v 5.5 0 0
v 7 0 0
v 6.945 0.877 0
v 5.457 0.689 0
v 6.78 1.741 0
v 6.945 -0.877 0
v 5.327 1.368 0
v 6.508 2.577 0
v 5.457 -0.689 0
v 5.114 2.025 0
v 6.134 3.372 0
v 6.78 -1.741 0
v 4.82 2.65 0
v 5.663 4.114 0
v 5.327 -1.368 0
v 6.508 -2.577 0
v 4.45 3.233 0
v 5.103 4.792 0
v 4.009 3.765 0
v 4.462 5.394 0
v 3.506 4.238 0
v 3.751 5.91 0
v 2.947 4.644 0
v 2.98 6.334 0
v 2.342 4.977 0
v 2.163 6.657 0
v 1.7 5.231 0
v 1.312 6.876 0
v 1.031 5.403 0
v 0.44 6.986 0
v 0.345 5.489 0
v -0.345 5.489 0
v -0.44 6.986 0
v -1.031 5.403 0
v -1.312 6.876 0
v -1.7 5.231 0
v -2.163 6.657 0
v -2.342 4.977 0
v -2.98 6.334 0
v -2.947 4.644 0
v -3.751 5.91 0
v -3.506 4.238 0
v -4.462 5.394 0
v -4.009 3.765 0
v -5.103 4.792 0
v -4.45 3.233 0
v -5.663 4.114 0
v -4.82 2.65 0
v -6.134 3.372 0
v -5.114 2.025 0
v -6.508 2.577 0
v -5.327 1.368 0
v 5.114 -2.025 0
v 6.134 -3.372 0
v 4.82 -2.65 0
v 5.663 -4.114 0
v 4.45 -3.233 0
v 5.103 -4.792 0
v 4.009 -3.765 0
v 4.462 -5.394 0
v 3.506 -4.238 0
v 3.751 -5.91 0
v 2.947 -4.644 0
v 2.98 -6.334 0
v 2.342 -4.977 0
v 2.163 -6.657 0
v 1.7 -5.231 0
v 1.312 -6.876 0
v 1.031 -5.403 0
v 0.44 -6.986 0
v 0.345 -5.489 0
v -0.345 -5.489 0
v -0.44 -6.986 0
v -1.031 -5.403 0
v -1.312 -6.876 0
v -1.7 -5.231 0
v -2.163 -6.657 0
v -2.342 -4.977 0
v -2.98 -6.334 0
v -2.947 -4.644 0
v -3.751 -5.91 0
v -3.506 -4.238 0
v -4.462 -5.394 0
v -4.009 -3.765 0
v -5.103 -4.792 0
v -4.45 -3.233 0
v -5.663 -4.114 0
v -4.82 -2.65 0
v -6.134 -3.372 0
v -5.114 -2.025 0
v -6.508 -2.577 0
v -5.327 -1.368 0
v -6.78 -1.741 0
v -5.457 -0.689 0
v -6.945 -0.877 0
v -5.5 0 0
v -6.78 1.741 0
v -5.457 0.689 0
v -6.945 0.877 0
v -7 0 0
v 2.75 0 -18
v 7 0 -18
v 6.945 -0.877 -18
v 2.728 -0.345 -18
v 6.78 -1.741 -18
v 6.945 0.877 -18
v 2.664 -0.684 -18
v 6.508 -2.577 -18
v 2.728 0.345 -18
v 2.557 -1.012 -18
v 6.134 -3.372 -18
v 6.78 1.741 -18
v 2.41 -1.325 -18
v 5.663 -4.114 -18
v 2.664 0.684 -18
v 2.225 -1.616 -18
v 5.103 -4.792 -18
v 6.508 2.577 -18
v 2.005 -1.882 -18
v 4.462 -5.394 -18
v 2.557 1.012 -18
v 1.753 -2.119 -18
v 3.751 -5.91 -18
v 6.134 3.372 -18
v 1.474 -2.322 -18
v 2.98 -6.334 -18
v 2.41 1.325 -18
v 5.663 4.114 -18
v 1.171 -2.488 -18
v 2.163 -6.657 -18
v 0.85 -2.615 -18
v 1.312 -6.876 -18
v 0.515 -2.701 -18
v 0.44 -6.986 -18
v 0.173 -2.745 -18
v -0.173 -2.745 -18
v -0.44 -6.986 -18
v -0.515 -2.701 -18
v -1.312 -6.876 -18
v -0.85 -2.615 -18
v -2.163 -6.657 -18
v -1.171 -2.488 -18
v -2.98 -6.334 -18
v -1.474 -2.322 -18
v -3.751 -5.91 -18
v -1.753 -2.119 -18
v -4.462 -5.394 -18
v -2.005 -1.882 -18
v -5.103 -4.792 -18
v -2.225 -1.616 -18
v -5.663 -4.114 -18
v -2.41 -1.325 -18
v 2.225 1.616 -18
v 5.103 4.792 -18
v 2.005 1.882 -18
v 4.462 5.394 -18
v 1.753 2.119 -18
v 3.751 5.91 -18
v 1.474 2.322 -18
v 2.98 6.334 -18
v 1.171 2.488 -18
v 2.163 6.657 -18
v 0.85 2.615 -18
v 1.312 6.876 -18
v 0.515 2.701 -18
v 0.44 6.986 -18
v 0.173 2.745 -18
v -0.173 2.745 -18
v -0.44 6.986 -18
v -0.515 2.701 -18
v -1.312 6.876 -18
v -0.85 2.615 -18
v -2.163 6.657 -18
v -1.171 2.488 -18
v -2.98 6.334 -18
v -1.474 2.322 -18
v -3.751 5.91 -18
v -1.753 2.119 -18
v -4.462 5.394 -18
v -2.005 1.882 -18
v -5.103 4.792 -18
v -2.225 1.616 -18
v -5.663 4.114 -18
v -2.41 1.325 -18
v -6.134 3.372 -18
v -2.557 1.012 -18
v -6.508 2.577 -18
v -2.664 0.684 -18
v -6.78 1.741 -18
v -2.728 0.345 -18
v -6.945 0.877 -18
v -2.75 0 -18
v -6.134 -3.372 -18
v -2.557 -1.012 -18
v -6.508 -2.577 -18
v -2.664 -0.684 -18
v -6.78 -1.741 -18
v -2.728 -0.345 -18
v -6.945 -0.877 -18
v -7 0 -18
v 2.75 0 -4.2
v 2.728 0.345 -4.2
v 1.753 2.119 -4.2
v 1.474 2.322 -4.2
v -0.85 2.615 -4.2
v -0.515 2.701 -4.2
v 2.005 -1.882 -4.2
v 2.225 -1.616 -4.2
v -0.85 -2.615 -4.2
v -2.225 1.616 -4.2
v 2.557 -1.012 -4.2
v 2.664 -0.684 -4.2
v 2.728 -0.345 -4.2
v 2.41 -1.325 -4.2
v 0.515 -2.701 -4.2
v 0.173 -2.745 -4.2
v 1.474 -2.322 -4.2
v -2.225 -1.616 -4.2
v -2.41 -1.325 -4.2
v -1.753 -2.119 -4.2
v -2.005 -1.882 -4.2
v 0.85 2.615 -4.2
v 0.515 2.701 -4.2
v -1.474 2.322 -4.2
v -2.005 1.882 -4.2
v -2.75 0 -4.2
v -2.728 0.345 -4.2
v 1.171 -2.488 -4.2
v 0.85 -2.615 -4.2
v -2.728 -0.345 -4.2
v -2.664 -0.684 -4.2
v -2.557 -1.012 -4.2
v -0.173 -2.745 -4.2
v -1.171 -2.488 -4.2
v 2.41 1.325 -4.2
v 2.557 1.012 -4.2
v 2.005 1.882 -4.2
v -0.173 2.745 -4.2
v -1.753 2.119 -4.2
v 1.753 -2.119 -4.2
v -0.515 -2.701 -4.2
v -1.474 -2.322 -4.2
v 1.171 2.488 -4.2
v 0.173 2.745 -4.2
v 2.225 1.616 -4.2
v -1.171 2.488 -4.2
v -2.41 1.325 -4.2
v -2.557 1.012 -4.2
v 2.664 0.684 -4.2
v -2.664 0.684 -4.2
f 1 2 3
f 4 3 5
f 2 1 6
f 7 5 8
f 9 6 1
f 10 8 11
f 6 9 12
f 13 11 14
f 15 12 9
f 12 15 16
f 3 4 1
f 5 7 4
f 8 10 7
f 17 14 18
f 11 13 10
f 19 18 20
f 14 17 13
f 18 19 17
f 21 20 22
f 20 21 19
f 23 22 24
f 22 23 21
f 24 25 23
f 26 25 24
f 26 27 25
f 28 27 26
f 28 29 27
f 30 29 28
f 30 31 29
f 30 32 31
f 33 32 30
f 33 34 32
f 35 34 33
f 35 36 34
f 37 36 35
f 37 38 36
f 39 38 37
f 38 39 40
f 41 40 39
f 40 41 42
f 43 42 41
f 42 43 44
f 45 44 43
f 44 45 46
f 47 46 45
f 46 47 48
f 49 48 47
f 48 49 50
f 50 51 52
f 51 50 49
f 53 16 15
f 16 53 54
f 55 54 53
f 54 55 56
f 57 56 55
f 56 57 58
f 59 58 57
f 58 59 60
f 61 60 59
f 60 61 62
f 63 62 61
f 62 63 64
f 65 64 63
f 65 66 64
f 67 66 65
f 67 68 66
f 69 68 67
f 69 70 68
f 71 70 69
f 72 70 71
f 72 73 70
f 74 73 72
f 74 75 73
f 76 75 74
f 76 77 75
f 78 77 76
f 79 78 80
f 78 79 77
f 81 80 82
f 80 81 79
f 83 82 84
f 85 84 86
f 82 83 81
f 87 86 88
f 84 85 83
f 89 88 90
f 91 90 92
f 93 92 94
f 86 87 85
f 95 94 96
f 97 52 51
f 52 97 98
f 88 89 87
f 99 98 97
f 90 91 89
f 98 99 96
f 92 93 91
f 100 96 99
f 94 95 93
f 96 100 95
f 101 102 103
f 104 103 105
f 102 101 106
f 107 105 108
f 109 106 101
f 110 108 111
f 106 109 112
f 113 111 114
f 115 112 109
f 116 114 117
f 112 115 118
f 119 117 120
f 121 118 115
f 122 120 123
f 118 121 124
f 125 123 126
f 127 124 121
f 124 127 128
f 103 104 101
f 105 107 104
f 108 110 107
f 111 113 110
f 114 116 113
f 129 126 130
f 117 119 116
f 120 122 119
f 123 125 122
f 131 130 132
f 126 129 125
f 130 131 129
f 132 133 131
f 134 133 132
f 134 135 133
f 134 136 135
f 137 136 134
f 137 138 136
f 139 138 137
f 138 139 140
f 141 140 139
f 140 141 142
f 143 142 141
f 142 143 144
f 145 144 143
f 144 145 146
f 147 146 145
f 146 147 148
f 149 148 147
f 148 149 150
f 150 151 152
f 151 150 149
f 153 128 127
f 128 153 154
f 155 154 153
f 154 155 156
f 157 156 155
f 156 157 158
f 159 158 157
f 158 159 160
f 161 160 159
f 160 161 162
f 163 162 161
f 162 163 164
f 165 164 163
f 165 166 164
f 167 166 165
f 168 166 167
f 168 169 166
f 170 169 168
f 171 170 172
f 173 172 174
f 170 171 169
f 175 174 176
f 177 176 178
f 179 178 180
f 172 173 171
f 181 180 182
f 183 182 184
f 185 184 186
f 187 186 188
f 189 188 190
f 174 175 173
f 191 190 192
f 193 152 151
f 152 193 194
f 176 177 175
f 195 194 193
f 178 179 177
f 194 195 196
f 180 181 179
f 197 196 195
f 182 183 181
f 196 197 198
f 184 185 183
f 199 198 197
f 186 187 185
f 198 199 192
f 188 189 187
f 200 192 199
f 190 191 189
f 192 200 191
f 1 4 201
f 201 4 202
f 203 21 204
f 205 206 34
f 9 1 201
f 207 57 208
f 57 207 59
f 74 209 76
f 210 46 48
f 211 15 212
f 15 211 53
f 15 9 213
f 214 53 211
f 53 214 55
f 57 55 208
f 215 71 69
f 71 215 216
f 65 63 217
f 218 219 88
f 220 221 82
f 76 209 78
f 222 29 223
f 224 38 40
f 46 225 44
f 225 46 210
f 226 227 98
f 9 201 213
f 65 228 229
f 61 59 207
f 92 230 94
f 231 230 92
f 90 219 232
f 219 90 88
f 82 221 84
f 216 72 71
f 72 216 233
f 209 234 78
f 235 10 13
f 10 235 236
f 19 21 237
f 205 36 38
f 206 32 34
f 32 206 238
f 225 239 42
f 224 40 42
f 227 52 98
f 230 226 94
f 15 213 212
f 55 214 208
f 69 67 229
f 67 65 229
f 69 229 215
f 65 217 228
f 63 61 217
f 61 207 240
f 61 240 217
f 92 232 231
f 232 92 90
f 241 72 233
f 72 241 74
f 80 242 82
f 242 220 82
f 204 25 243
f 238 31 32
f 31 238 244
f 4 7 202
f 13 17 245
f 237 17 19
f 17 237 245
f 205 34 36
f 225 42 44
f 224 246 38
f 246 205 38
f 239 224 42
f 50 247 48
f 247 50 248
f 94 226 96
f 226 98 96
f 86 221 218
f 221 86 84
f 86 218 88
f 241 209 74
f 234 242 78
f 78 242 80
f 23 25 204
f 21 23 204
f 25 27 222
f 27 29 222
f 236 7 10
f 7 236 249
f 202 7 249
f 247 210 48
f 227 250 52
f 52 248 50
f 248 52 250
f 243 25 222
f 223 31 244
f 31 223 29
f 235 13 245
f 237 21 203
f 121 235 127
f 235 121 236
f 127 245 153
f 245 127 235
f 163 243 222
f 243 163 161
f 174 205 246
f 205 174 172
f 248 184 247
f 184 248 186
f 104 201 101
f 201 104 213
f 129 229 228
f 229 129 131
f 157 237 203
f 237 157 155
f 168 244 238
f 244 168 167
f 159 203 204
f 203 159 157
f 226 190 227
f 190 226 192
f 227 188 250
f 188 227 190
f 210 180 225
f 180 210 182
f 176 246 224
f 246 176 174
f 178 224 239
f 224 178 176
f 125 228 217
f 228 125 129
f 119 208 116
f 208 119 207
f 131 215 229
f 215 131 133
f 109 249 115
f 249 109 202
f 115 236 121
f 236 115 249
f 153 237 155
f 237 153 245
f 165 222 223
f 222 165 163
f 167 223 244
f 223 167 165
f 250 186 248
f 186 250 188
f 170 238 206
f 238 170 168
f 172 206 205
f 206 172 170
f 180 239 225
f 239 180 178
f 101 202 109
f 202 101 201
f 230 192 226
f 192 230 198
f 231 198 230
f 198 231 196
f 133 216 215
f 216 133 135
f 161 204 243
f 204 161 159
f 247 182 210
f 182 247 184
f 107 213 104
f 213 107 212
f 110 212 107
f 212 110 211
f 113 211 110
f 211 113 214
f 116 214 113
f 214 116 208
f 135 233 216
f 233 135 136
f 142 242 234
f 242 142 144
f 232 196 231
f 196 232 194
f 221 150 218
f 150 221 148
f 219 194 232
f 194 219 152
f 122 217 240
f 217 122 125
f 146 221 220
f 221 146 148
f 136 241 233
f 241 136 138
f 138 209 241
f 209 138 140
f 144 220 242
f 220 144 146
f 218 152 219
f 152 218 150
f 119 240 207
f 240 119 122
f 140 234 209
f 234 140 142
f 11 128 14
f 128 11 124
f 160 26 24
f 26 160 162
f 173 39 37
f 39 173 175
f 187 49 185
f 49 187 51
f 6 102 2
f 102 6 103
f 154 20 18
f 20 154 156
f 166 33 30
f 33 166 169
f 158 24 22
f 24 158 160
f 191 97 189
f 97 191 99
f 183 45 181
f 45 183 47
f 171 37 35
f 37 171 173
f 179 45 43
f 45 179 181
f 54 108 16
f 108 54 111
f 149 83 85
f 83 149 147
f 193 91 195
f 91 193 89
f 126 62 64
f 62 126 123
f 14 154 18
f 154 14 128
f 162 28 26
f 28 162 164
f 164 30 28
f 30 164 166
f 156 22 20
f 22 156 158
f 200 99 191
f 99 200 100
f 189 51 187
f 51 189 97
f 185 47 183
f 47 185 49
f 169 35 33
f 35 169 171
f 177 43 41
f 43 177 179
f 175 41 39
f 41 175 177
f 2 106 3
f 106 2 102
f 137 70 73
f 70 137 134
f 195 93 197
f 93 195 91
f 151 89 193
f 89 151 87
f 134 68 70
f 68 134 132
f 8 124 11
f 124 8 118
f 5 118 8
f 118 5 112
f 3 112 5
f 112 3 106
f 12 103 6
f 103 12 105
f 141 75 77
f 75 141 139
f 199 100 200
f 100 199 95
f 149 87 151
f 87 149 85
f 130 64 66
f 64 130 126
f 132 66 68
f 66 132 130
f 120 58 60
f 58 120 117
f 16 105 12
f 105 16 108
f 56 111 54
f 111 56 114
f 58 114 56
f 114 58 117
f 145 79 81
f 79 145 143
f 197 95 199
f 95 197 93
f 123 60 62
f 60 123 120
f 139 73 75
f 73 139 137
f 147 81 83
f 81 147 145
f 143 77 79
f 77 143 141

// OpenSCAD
$fn = 50;


difference() {
	union() {
		translate(v = [0, 0, -18.0000000000]) {
			cylinder(h = 18, r = 7.0000000000);
		}
		cylinder(h = 0, r = 16.0000000000);
	}
	union() {
		translate(v = [0, 0, 0]) {
			rotate(a = [0, 0, 0]) {
				difference() {
					union() {
						#translate(v = [0, 0, -18.0000000000]) {
							cylinder(h = 18, r = 2.2500000000);
						}
						#translate(v = [0, 0, -4.2000000000]) {
							cylinder(h = 4.2000000000, r = 7.0000000000, r1 = 2.7500000000, r2 = 5.5000000000);
						}
						#translate(v = [0, 0, -18.0000000000]) {
							cylinder(h = 18, r = 2.7500000000);
						}
						#translate(v = [0, 0, -18.0000000000]) {
							cylinder(h = 18, r = 2.2500000000);
						}
					}
					union();
				}
			}
		}
	}
}
